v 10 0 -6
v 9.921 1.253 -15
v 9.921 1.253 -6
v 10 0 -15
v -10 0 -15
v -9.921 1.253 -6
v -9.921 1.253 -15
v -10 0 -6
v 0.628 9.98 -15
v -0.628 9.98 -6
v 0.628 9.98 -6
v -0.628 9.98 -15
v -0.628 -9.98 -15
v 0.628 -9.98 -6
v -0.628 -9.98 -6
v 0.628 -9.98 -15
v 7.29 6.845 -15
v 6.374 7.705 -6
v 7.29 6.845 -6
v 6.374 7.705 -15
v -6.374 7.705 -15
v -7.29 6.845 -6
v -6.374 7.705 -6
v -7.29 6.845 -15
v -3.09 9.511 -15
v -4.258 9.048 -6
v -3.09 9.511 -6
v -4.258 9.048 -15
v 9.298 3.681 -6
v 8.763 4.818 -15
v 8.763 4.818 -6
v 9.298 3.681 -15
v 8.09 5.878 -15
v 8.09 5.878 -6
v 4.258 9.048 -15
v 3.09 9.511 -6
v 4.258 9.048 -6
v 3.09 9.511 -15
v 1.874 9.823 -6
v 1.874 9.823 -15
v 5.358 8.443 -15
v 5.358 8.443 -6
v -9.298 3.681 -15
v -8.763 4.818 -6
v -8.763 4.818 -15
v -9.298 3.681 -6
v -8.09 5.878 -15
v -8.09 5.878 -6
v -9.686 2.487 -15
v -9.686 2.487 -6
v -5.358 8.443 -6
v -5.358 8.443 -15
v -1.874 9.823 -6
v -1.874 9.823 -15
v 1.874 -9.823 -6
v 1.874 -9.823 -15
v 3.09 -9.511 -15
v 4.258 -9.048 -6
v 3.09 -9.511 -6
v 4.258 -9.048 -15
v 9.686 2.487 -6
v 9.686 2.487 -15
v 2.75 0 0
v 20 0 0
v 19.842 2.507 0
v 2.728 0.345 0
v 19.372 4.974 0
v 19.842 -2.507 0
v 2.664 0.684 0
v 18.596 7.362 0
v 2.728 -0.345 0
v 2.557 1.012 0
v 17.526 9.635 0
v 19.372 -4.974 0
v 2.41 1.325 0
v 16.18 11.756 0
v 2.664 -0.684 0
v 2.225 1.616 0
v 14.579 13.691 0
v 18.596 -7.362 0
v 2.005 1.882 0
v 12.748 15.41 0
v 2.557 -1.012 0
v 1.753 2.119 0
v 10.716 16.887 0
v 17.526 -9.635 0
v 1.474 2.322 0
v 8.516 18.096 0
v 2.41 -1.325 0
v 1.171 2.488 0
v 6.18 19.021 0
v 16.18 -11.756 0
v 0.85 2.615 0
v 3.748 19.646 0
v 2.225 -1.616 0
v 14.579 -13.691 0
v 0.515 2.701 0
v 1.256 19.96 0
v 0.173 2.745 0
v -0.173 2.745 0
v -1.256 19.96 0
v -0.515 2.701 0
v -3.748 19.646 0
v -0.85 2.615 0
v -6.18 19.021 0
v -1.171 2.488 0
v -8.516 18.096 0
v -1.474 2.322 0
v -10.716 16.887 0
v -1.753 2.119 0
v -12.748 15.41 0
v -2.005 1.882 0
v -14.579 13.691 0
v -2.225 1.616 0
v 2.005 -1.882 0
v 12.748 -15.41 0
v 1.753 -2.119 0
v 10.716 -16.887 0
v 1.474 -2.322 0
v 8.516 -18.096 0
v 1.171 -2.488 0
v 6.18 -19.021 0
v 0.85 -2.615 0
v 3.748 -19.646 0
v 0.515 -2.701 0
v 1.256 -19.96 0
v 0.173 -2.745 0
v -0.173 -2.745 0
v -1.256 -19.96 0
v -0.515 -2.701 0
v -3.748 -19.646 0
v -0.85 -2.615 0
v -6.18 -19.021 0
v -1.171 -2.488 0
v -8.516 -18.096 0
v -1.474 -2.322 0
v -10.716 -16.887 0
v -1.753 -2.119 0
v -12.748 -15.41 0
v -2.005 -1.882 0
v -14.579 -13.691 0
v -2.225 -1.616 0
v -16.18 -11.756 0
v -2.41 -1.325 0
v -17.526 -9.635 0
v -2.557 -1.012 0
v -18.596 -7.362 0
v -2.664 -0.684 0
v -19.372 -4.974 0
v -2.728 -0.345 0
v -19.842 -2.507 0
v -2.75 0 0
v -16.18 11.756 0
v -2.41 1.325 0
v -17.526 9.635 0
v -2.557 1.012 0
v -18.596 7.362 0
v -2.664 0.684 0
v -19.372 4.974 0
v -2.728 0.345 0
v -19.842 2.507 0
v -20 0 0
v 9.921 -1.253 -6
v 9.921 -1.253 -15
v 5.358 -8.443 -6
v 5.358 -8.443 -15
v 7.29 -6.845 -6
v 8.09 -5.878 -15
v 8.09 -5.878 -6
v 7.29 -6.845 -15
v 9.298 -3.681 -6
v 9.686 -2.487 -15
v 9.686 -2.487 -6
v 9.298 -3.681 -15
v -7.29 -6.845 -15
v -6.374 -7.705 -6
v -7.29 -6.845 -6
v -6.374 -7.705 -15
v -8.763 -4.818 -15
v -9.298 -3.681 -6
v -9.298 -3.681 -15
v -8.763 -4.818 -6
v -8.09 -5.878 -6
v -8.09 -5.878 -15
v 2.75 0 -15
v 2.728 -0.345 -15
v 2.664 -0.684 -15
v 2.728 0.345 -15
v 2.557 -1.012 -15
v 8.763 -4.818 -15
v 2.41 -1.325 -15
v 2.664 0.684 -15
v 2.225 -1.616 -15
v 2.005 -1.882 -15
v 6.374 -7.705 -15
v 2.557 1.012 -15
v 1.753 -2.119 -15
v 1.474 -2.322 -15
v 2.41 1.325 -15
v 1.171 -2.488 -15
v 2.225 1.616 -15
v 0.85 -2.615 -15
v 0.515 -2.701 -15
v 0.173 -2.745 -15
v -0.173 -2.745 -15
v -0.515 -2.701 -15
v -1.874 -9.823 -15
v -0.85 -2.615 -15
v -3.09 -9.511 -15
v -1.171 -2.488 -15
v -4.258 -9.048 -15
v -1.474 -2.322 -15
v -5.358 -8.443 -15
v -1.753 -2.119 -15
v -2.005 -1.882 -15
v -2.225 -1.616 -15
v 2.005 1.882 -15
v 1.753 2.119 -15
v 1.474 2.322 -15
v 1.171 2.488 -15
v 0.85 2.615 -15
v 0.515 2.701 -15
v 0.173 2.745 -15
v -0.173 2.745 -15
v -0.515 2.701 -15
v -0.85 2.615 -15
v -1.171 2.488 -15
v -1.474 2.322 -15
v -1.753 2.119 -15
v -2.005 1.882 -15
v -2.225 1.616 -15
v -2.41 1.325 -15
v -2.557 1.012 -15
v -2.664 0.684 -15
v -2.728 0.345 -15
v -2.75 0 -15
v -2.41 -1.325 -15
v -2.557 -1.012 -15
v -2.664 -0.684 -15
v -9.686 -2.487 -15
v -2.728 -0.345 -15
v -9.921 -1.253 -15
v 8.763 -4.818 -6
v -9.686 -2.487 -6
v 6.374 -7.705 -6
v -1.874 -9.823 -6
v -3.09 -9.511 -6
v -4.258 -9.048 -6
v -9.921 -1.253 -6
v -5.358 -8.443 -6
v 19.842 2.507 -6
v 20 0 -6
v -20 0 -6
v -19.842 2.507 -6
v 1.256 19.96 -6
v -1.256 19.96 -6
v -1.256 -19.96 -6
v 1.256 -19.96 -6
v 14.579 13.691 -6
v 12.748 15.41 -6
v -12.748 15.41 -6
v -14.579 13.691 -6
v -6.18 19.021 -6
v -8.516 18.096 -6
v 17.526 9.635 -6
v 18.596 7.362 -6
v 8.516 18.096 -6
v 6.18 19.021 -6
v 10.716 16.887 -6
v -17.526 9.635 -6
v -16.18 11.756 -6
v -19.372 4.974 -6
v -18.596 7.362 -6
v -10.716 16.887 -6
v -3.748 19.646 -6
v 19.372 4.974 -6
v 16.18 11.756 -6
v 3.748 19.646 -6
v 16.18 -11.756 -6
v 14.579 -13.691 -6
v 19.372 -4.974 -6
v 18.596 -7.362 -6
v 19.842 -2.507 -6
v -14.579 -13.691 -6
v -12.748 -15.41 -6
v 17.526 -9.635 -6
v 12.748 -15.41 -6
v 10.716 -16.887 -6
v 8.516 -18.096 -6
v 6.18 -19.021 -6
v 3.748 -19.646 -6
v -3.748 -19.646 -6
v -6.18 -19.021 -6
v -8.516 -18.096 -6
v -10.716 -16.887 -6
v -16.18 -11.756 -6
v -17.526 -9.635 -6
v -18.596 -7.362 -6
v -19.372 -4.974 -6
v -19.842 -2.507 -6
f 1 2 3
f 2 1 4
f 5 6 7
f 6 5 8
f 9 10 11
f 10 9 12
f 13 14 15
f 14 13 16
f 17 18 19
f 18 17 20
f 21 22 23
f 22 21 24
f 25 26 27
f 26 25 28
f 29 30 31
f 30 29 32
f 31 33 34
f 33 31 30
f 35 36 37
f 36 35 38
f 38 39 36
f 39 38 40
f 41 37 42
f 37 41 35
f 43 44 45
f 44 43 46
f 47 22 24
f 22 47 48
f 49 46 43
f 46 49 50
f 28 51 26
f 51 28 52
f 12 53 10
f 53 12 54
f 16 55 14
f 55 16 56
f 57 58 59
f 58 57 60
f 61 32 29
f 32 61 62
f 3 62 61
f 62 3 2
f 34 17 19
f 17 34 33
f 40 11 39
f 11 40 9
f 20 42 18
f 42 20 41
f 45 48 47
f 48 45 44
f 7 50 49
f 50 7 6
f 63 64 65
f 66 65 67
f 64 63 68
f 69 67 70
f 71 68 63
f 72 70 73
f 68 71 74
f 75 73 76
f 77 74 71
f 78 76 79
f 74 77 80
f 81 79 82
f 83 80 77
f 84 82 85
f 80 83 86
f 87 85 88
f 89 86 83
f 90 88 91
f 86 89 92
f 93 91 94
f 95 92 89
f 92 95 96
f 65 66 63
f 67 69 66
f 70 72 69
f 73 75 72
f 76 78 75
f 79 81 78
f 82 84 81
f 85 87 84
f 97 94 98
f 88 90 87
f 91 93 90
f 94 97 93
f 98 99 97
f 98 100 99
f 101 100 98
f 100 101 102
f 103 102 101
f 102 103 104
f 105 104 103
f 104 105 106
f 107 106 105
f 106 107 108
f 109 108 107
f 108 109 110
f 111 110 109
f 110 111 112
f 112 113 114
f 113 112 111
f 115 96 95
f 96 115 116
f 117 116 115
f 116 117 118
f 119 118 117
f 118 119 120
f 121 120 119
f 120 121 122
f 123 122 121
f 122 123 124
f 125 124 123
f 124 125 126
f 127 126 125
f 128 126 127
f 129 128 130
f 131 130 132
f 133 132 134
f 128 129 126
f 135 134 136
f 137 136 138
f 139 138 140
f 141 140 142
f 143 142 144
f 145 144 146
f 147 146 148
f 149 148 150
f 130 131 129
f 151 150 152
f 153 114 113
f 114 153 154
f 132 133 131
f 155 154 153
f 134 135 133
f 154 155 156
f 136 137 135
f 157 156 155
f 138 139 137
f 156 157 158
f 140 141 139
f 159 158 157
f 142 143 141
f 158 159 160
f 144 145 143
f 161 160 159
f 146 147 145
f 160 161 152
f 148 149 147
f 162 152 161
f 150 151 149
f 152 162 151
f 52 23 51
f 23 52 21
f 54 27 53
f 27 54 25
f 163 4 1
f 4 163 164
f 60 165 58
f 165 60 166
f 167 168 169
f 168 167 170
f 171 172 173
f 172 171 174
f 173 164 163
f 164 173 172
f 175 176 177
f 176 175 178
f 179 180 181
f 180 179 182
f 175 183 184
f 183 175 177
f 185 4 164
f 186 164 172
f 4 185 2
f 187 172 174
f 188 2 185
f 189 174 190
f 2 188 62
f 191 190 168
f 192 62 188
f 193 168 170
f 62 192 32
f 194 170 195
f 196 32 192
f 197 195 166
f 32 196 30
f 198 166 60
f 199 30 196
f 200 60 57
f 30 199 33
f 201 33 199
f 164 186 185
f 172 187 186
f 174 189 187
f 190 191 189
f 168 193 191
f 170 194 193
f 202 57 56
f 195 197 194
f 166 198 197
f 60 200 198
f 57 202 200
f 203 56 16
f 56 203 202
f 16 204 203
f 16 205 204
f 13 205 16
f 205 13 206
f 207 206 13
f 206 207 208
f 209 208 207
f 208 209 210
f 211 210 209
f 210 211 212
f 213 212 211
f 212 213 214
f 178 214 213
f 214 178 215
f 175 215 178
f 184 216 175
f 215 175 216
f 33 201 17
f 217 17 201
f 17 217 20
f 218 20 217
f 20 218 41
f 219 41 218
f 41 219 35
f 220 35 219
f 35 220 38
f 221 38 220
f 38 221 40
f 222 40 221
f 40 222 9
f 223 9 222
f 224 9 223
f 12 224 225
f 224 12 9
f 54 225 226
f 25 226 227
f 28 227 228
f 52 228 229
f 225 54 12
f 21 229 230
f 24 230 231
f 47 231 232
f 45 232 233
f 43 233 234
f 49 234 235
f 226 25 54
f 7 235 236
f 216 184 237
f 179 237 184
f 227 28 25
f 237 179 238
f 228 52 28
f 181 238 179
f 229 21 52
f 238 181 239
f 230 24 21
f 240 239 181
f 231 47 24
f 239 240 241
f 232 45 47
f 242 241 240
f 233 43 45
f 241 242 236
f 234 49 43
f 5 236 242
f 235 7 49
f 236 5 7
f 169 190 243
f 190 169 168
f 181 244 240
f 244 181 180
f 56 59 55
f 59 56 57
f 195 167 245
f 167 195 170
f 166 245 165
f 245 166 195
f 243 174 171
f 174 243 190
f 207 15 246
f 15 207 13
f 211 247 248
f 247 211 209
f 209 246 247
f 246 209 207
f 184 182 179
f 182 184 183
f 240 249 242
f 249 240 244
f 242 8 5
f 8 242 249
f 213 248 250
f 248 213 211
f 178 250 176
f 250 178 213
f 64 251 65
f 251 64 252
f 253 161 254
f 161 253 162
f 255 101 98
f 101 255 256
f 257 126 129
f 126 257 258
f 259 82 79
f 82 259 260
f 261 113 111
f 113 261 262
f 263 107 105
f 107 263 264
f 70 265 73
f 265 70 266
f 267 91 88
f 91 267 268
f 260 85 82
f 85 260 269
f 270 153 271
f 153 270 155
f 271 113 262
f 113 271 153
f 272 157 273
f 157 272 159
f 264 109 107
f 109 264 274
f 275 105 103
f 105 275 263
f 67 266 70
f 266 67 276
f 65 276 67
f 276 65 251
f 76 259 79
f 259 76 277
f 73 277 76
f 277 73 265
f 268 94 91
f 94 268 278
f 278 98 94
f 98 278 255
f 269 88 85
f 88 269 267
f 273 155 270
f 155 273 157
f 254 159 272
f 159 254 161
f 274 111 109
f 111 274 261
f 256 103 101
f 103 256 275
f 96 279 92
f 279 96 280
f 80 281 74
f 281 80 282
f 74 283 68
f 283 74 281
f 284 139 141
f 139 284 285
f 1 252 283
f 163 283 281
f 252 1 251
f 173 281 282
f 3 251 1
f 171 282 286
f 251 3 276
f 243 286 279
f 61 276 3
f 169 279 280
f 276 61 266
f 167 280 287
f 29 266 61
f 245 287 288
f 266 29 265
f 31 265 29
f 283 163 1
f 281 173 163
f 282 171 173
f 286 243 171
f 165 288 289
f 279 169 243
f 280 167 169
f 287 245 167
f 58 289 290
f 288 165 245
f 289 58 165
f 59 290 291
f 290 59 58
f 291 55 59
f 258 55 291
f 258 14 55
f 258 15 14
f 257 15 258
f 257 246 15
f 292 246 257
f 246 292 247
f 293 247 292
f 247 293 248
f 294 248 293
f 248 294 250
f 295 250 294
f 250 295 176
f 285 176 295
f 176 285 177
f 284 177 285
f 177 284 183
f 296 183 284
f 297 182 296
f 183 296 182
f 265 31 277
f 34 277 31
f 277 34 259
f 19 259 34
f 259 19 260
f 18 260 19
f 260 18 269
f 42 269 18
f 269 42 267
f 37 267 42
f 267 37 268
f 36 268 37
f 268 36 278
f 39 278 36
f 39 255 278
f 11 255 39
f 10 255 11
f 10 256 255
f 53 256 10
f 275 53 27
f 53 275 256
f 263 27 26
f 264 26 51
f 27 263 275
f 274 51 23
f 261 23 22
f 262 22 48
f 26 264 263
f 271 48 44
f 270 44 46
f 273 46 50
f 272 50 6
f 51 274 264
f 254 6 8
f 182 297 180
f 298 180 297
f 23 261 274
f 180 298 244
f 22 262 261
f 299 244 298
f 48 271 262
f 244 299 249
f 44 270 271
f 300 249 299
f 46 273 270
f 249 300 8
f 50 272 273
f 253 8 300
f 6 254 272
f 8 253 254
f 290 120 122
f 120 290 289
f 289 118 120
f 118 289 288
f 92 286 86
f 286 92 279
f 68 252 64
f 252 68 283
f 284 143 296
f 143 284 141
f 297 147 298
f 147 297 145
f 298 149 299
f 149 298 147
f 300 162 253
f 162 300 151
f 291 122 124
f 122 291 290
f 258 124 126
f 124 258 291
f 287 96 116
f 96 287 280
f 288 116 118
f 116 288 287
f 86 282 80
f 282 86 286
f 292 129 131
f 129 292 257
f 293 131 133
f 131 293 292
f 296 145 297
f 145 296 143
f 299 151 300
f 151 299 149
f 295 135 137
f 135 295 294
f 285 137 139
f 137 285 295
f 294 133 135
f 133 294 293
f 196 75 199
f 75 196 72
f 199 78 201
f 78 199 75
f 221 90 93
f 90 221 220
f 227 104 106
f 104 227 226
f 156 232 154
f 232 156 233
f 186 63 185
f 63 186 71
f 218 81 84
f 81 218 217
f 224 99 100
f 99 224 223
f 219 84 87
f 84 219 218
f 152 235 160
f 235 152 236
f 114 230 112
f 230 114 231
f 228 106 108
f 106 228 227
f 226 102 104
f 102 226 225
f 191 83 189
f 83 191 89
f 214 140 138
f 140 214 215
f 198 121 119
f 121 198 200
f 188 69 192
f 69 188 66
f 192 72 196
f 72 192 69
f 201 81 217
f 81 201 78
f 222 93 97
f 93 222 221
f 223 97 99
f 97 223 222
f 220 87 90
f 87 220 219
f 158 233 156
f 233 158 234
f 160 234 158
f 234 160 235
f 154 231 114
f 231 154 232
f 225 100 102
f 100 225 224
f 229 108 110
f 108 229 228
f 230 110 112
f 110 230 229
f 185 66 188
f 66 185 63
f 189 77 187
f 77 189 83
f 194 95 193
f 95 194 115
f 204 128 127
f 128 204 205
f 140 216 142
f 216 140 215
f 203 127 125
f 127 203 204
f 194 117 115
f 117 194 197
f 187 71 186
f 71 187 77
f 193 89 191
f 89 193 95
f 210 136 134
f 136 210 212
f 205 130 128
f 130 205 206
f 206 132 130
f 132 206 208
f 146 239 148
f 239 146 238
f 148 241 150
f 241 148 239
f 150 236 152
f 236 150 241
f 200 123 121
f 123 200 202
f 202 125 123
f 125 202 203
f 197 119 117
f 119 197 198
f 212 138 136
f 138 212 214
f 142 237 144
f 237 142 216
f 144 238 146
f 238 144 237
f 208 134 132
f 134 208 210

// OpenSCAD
$fn = 50;


difference() {
	union() {
		translate(v = [0, 0, -15.0000000000]) {
			cylinder(h = 15, r = 10.0000000000);
		}
		translate(v = [0, 0, -6.0000000000]) {
			cylinder(h = 6, r = 20.0000000000);
		}
	}
	union() {
		#translate(v = [0, 0, -15]) {
			cylinder(h = 15, r = 2.7500000000);
		}
	}
}
